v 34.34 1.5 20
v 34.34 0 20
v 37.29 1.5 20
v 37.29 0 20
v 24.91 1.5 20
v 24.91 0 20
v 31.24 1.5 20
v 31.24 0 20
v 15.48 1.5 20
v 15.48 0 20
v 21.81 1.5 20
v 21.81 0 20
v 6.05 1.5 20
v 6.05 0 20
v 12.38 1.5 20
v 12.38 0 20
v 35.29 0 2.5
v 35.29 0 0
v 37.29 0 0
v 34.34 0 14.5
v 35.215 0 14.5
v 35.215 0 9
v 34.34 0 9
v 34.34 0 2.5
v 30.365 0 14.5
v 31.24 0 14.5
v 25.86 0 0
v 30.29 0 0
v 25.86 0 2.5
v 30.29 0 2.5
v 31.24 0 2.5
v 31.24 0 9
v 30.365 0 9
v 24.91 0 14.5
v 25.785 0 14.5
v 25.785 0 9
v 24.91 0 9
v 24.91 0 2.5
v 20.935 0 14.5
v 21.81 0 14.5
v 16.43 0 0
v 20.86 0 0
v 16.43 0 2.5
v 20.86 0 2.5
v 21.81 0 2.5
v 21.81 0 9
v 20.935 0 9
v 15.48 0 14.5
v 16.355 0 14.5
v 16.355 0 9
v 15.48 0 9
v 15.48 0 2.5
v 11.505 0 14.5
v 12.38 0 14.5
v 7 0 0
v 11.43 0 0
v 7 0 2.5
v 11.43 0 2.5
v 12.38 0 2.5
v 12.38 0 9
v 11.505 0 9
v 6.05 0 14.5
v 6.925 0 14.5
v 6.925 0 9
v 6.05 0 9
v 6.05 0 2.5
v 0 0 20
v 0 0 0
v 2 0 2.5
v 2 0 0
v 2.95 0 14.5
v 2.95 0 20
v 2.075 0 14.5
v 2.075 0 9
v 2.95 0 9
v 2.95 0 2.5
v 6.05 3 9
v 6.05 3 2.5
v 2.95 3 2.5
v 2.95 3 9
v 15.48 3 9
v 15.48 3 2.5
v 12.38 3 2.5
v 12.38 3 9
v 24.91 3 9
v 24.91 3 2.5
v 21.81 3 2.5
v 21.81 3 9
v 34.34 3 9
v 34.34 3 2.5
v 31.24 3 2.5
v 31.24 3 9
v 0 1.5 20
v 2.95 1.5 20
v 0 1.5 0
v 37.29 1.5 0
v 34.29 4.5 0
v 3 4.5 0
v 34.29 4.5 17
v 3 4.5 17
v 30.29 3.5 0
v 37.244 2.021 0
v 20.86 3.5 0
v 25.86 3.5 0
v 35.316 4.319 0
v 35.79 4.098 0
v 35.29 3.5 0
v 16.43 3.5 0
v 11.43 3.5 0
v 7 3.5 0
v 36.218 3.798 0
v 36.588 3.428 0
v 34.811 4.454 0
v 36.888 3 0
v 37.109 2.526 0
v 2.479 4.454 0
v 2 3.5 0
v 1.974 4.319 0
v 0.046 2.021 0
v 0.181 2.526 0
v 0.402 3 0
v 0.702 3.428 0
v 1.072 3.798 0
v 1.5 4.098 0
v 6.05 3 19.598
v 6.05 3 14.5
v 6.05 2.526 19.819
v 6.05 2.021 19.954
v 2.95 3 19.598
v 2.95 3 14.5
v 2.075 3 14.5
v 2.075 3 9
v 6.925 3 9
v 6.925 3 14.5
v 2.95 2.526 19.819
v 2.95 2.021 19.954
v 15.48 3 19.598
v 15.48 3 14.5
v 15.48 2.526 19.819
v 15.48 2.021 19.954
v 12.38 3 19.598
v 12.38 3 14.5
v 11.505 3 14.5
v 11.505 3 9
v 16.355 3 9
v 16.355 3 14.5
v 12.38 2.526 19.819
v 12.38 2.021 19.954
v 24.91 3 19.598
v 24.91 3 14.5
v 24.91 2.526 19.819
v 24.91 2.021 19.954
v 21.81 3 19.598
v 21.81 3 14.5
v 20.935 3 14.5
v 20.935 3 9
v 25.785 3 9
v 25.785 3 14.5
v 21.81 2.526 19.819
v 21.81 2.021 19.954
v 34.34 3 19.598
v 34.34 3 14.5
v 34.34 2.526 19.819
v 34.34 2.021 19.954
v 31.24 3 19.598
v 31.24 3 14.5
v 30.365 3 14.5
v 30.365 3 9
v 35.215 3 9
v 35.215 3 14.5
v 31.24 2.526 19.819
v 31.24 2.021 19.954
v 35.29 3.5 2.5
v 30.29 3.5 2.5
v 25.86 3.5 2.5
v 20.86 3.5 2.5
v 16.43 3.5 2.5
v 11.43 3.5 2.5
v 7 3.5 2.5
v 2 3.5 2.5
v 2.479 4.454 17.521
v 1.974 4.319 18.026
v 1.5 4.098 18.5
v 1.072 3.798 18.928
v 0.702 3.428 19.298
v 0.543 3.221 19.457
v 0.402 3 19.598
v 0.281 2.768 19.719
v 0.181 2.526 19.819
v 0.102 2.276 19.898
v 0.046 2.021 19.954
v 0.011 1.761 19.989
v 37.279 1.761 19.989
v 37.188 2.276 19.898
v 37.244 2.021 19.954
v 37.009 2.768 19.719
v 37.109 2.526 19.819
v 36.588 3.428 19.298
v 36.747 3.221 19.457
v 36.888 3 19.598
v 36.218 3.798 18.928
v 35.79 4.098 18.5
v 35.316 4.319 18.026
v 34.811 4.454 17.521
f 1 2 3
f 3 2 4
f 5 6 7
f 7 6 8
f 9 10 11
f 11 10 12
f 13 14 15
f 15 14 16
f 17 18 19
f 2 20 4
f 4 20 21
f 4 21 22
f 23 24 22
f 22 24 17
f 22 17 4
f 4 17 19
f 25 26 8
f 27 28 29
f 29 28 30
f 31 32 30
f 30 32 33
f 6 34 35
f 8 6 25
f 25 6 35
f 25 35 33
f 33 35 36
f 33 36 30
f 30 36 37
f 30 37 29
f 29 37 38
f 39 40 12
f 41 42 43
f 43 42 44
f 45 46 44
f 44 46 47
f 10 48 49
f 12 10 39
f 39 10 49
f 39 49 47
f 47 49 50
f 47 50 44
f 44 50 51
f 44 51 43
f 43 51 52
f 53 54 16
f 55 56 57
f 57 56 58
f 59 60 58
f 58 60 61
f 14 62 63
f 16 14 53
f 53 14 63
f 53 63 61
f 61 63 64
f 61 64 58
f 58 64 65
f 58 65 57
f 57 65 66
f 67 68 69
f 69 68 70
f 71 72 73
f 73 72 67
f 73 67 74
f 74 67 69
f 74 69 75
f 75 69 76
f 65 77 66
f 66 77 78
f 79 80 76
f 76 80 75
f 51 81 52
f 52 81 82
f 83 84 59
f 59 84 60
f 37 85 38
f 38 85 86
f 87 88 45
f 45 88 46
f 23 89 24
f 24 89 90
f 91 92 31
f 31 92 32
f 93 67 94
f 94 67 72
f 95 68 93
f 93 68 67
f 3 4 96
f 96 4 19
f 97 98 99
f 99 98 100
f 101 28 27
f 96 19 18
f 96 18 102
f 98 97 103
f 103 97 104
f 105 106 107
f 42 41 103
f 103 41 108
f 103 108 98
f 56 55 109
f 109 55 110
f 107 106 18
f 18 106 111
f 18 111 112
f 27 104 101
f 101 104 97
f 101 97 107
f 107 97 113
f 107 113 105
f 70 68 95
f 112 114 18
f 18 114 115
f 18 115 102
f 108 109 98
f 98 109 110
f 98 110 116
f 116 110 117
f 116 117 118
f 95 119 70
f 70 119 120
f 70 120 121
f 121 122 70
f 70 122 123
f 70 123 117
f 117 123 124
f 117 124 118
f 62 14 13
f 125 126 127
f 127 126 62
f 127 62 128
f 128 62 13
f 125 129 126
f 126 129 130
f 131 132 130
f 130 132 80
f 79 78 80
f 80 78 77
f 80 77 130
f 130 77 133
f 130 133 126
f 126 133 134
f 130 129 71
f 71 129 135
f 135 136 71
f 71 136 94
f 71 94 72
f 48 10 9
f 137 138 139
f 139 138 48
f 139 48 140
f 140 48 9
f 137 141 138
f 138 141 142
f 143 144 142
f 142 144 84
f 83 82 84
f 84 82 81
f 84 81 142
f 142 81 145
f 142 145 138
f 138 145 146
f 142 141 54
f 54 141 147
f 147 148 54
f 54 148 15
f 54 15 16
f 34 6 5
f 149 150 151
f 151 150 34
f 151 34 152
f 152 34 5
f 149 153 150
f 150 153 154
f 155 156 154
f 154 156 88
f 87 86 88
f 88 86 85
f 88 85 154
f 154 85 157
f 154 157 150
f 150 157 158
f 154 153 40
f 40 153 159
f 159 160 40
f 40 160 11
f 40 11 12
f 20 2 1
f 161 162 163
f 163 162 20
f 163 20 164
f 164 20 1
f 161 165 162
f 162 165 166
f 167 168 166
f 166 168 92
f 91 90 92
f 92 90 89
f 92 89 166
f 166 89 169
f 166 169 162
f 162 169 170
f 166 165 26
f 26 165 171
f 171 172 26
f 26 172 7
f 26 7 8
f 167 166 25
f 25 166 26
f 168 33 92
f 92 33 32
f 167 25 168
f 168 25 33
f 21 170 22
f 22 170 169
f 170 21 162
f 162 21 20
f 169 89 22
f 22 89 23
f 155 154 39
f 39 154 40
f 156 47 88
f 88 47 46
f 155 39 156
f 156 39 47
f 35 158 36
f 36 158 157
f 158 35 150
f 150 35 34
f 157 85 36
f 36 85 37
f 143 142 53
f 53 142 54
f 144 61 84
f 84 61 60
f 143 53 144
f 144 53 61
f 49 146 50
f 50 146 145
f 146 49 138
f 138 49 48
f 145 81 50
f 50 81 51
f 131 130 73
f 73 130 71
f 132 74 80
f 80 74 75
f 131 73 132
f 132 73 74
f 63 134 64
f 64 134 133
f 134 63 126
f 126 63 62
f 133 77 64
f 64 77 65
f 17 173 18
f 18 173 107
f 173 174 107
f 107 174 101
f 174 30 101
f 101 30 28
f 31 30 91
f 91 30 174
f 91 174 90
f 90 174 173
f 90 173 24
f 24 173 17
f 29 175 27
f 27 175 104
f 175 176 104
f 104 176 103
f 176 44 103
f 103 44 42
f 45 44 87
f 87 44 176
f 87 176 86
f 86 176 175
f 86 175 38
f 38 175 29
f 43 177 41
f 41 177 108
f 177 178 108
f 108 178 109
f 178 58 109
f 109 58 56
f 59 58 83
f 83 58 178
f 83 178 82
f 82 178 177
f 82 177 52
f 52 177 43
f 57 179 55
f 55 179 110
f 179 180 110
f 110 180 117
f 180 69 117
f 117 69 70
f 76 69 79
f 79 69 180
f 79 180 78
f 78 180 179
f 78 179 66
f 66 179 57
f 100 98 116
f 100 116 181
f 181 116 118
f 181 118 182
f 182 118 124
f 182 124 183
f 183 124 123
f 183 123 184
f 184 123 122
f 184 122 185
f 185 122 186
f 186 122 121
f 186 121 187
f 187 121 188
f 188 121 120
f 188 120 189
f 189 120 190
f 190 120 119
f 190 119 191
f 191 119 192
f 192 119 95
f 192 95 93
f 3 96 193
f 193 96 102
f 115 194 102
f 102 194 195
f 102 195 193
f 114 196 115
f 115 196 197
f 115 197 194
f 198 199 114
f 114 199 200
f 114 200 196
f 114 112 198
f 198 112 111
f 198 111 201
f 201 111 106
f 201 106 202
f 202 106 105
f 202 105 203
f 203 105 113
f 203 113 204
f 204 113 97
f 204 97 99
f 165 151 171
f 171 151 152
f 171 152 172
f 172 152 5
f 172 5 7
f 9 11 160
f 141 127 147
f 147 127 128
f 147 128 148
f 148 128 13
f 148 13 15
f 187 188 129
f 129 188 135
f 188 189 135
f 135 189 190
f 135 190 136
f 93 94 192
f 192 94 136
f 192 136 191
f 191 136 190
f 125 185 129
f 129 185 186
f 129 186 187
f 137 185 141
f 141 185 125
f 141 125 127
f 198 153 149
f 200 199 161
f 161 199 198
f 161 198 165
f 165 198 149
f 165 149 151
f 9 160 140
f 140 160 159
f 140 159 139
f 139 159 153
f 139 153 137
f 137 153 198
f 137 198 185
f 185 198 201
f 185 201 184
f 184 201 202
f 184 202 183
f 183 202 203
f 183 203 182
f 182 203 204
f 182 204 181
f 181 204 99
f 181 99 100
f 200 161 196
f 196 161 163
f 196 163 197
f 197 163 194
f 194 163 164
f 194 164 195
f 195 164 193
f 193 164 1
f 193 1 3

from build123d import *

# Parameters (mm, degrees)
SKETCH1_W               = 37.29
SKETCH1_H               = 4.5
BOSS_EXTRUDE1_DEPTH     = 20
CUT_EXTRUDE1_DEPTH      = 43.553426419
CUT_EXTRUDE1_DEPTH_BACK = 43.553426419
SKETCH1_3_W             = 3.1
SKETCH1_3_H             = 3
CUT_EXTRUDE2_START      = 9
SKETCH1_4_W             = 4.85
SKETCH1_4_H             = 3
CUT_EXTRUDE2_DEPTH      = 5.5
SKETCH1_5_W             = 5
SKETCH1_5_H             = 3.5
CUT_EXTRUDE3_DEPTH      = 2.5
FILLET1_R               = 3


with BuildPart() as part:
    # Sketch1 → Boss-Extrude1 (new body)
    with BuildSketch(Plane.XY):
        with Locations((18.645, 2.25)):
            Rectangle(SKETCH1_W, SKETCH1_H)
    extrude(amount=BOSS_EXTRUDE1_DEPTH)

    # Sketch1<3> → Cut-Extrude1 (cut, two sides: drawn at the far end of the back side and taken through both)
    with BuildSketch(Plane.XY.offset(-CUT_EXTRUDE1_DEPTH_BACK)):
        with Locations((4.5, 1.5)):
            Rectangle(SKETCH1_3_W, SKETCH1_3_H)
        with Locations((13.93, 1.5)):
            Rectangle(SKETCH1_3_W, SKETCH1_3_H)
        with Locations((23.36, 1.5)):
            Rectangle(SKETCH1_3_W, SKETCH1_3_H)
        with Locations((32.79, 1.5)):
            Rectangle(SKETCH1_3_W, SKETCH1_3_H)
    extrude(amount=CUT_EXTRUDE1_DEPTH + CUT_EXTRUDE1_DEPTH_BACK, mode=Mode.SUBTRACT)

    # Sketch1<4> → Cut-Extrude2 (cut)
    with BuildSketch(Plane.XY.offset(CUT_EXTRUDE2_START)):
        with Locations((4.5, 1.5)):
            Rectangle(SKETCH1_4_W, SKETCH1_4_H)
        with Locations((13.93, 1.5)):
            Rectangle(SKETCH1_4_W, SKETCH1_4_H)
        with Locations((23.36, 1.5)):
            Rectangle(SKETCH1_4_W, SKETCH1_4_H)
        with Locations((32.79, 1.5)):
            Rectangle(SKETCH1_4_W, SKETCH1_4_H)
    extrude(amount=CUT_EXTRUDE2_DEPTH, mode=Mode.SUBTRACT)

    # Sketch1<5> → Cut-Extrude3 (cut)
    with BuildSketch(Plane.XY):
        with Locations((4.5, 1.75)):
            Rectangle(SKETCH1_5_W, SKETCH1_5_H)
        with Locations((13.93, 1.75)):
            Rectangle(SKETCH1_5_W, SKETCH1_5_H)
        with Locations((23.36, 1.75)):
            Rectangle(SKETCH1_5_W, SKETCH1_5_H)
        with Locations((32.79, 1.75)):
            Rectangle(SKETCH1_5_W, SKETCH1_5_H)
    extrude(amount=CUT_EXTRUDE3_DEPTH, mode=Mode.SUBTRACT)

    # Fillet1
    # the kernel refuses this fillet: 3 mm, written as the material it takes off along each edge
    with BuildSketch(Plane(origin=(-7.5, 4.5, 20), x_dir=(0, 0, -1), z_dir=(1, 0, 0))) as fillet1_piece_1:
        with BuildLine():
            CenterArc((FILLET1_R, -FILLET1_R), FILLET1_R, 90, 90)
            Line((0, -FILLET1_R), (0, 0))
            Line((0, 0), (FILLET1_R, 0))
        make_face()
    extrude(amount=52.29, mode=Mode.SUBTRACT)
    with BuildSketch(Plane(origin=(37.29, 4.5, -7.5), x_dir=(-1, 0, 0), z_dir=(0, 0, 1)), Plane(origin=(0, 4.5, -7.5), x_dir=(0, -1, 0), z_dir=(0, 0, 1))) as fillet1_piece_2:
        with BuildLine():
            CenterArc((FILLET1_R, FILLET1_R), FILLET1_R, 180, 90)
            Line((0, FILLET1_R), (0, 0))
            Line((0, 0), (FILLET1_R, 0))
        make_face()
    extrude(amount=35, mode=Mode.SUBTRACT)


solid = part.part
